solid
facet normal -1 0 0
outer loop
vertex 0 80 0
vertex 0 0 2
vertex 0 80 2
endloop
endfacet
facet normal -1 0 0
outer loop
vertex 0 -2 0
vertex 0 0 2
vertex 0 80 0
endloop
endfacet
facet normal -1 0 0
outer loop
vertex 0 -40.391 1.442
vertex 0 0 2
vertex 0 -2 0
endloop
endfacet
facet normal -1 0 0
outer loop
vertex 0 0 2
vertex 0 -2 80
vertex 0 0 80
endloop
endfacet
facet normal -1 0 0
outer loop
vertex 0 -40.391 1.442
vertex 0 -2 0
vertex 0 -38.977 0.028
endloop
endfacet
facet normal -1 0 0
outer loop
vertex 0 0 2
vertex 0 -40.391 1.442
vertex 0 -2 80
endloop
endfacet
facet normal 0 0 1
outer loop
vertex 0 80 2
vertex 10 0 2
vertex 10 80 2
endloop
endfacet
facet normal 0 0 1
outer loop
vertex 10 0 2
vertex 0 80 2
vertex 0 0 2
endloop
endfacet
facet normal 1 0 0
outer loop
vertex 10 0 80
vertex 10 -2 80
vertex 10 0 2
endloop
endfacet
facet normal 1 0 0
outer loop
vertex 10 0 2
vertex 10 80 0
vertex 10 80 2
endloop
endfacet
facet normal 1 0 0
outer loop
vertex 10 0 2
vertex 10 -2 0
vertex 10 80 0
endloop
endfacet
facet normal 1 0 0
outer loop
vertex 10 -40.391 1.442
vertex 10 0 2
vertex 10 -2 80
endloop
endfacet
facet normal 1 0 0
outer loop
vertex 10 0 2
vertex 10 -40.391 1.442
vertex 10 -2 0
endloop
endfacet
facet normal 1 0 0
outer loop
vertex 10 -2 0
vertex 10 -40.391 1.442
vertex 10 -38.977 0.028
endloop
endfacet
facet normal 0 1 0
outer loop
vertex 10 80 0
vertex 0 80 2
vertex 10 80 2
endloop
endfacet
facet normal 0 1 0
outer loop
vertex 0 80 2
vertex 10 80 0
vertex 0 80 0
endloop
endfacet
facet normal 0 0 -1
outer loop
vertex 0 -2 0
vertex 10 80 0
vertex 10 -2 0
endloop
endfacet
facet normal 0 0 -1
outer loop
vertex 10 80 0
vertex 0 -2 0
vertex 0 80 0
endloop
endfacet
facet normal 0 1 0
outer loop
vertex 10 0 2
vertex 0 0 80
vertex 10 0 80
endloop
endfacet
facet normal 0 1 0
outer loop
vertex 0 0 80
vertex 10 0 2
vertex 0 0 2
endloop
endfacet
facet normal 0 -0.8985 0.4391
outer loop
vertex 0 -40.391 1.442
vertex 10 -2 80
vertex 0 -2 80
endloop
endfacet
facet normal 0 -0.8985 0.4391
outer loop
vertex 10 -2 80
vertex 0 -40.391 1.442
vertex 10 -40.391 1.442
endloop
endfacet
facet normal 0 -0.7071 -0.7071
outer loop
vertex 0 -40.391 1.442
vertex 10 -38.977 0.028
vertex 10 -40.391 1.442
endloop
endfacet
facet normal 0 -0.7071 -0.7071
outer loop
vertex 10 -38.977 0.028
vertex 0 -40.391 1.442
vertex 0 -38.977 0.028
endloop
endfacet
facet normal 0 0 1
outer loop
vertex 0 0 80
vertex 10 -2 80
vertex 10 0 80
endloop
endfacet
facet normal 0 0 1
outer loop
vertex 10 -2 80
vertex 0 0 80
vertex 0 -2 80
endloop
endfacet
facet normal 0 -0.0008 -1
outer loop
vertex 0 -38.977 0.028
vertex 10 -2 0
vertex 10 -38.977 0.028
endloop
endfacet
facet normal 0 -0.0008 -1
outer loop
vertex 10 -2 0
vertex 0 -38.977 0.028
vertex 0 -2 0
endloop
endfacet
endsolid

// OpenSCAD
support();

module support() {
    cube([10,80,2]);
    hull() {
        rotate([90,0,0]){
            cube([10,80,2]);
        }
        translate([0,-1.5,40.33333]) {
            rotate([225,0,0]){
                cube([10,55,2]);
            }
        }
    }
}
